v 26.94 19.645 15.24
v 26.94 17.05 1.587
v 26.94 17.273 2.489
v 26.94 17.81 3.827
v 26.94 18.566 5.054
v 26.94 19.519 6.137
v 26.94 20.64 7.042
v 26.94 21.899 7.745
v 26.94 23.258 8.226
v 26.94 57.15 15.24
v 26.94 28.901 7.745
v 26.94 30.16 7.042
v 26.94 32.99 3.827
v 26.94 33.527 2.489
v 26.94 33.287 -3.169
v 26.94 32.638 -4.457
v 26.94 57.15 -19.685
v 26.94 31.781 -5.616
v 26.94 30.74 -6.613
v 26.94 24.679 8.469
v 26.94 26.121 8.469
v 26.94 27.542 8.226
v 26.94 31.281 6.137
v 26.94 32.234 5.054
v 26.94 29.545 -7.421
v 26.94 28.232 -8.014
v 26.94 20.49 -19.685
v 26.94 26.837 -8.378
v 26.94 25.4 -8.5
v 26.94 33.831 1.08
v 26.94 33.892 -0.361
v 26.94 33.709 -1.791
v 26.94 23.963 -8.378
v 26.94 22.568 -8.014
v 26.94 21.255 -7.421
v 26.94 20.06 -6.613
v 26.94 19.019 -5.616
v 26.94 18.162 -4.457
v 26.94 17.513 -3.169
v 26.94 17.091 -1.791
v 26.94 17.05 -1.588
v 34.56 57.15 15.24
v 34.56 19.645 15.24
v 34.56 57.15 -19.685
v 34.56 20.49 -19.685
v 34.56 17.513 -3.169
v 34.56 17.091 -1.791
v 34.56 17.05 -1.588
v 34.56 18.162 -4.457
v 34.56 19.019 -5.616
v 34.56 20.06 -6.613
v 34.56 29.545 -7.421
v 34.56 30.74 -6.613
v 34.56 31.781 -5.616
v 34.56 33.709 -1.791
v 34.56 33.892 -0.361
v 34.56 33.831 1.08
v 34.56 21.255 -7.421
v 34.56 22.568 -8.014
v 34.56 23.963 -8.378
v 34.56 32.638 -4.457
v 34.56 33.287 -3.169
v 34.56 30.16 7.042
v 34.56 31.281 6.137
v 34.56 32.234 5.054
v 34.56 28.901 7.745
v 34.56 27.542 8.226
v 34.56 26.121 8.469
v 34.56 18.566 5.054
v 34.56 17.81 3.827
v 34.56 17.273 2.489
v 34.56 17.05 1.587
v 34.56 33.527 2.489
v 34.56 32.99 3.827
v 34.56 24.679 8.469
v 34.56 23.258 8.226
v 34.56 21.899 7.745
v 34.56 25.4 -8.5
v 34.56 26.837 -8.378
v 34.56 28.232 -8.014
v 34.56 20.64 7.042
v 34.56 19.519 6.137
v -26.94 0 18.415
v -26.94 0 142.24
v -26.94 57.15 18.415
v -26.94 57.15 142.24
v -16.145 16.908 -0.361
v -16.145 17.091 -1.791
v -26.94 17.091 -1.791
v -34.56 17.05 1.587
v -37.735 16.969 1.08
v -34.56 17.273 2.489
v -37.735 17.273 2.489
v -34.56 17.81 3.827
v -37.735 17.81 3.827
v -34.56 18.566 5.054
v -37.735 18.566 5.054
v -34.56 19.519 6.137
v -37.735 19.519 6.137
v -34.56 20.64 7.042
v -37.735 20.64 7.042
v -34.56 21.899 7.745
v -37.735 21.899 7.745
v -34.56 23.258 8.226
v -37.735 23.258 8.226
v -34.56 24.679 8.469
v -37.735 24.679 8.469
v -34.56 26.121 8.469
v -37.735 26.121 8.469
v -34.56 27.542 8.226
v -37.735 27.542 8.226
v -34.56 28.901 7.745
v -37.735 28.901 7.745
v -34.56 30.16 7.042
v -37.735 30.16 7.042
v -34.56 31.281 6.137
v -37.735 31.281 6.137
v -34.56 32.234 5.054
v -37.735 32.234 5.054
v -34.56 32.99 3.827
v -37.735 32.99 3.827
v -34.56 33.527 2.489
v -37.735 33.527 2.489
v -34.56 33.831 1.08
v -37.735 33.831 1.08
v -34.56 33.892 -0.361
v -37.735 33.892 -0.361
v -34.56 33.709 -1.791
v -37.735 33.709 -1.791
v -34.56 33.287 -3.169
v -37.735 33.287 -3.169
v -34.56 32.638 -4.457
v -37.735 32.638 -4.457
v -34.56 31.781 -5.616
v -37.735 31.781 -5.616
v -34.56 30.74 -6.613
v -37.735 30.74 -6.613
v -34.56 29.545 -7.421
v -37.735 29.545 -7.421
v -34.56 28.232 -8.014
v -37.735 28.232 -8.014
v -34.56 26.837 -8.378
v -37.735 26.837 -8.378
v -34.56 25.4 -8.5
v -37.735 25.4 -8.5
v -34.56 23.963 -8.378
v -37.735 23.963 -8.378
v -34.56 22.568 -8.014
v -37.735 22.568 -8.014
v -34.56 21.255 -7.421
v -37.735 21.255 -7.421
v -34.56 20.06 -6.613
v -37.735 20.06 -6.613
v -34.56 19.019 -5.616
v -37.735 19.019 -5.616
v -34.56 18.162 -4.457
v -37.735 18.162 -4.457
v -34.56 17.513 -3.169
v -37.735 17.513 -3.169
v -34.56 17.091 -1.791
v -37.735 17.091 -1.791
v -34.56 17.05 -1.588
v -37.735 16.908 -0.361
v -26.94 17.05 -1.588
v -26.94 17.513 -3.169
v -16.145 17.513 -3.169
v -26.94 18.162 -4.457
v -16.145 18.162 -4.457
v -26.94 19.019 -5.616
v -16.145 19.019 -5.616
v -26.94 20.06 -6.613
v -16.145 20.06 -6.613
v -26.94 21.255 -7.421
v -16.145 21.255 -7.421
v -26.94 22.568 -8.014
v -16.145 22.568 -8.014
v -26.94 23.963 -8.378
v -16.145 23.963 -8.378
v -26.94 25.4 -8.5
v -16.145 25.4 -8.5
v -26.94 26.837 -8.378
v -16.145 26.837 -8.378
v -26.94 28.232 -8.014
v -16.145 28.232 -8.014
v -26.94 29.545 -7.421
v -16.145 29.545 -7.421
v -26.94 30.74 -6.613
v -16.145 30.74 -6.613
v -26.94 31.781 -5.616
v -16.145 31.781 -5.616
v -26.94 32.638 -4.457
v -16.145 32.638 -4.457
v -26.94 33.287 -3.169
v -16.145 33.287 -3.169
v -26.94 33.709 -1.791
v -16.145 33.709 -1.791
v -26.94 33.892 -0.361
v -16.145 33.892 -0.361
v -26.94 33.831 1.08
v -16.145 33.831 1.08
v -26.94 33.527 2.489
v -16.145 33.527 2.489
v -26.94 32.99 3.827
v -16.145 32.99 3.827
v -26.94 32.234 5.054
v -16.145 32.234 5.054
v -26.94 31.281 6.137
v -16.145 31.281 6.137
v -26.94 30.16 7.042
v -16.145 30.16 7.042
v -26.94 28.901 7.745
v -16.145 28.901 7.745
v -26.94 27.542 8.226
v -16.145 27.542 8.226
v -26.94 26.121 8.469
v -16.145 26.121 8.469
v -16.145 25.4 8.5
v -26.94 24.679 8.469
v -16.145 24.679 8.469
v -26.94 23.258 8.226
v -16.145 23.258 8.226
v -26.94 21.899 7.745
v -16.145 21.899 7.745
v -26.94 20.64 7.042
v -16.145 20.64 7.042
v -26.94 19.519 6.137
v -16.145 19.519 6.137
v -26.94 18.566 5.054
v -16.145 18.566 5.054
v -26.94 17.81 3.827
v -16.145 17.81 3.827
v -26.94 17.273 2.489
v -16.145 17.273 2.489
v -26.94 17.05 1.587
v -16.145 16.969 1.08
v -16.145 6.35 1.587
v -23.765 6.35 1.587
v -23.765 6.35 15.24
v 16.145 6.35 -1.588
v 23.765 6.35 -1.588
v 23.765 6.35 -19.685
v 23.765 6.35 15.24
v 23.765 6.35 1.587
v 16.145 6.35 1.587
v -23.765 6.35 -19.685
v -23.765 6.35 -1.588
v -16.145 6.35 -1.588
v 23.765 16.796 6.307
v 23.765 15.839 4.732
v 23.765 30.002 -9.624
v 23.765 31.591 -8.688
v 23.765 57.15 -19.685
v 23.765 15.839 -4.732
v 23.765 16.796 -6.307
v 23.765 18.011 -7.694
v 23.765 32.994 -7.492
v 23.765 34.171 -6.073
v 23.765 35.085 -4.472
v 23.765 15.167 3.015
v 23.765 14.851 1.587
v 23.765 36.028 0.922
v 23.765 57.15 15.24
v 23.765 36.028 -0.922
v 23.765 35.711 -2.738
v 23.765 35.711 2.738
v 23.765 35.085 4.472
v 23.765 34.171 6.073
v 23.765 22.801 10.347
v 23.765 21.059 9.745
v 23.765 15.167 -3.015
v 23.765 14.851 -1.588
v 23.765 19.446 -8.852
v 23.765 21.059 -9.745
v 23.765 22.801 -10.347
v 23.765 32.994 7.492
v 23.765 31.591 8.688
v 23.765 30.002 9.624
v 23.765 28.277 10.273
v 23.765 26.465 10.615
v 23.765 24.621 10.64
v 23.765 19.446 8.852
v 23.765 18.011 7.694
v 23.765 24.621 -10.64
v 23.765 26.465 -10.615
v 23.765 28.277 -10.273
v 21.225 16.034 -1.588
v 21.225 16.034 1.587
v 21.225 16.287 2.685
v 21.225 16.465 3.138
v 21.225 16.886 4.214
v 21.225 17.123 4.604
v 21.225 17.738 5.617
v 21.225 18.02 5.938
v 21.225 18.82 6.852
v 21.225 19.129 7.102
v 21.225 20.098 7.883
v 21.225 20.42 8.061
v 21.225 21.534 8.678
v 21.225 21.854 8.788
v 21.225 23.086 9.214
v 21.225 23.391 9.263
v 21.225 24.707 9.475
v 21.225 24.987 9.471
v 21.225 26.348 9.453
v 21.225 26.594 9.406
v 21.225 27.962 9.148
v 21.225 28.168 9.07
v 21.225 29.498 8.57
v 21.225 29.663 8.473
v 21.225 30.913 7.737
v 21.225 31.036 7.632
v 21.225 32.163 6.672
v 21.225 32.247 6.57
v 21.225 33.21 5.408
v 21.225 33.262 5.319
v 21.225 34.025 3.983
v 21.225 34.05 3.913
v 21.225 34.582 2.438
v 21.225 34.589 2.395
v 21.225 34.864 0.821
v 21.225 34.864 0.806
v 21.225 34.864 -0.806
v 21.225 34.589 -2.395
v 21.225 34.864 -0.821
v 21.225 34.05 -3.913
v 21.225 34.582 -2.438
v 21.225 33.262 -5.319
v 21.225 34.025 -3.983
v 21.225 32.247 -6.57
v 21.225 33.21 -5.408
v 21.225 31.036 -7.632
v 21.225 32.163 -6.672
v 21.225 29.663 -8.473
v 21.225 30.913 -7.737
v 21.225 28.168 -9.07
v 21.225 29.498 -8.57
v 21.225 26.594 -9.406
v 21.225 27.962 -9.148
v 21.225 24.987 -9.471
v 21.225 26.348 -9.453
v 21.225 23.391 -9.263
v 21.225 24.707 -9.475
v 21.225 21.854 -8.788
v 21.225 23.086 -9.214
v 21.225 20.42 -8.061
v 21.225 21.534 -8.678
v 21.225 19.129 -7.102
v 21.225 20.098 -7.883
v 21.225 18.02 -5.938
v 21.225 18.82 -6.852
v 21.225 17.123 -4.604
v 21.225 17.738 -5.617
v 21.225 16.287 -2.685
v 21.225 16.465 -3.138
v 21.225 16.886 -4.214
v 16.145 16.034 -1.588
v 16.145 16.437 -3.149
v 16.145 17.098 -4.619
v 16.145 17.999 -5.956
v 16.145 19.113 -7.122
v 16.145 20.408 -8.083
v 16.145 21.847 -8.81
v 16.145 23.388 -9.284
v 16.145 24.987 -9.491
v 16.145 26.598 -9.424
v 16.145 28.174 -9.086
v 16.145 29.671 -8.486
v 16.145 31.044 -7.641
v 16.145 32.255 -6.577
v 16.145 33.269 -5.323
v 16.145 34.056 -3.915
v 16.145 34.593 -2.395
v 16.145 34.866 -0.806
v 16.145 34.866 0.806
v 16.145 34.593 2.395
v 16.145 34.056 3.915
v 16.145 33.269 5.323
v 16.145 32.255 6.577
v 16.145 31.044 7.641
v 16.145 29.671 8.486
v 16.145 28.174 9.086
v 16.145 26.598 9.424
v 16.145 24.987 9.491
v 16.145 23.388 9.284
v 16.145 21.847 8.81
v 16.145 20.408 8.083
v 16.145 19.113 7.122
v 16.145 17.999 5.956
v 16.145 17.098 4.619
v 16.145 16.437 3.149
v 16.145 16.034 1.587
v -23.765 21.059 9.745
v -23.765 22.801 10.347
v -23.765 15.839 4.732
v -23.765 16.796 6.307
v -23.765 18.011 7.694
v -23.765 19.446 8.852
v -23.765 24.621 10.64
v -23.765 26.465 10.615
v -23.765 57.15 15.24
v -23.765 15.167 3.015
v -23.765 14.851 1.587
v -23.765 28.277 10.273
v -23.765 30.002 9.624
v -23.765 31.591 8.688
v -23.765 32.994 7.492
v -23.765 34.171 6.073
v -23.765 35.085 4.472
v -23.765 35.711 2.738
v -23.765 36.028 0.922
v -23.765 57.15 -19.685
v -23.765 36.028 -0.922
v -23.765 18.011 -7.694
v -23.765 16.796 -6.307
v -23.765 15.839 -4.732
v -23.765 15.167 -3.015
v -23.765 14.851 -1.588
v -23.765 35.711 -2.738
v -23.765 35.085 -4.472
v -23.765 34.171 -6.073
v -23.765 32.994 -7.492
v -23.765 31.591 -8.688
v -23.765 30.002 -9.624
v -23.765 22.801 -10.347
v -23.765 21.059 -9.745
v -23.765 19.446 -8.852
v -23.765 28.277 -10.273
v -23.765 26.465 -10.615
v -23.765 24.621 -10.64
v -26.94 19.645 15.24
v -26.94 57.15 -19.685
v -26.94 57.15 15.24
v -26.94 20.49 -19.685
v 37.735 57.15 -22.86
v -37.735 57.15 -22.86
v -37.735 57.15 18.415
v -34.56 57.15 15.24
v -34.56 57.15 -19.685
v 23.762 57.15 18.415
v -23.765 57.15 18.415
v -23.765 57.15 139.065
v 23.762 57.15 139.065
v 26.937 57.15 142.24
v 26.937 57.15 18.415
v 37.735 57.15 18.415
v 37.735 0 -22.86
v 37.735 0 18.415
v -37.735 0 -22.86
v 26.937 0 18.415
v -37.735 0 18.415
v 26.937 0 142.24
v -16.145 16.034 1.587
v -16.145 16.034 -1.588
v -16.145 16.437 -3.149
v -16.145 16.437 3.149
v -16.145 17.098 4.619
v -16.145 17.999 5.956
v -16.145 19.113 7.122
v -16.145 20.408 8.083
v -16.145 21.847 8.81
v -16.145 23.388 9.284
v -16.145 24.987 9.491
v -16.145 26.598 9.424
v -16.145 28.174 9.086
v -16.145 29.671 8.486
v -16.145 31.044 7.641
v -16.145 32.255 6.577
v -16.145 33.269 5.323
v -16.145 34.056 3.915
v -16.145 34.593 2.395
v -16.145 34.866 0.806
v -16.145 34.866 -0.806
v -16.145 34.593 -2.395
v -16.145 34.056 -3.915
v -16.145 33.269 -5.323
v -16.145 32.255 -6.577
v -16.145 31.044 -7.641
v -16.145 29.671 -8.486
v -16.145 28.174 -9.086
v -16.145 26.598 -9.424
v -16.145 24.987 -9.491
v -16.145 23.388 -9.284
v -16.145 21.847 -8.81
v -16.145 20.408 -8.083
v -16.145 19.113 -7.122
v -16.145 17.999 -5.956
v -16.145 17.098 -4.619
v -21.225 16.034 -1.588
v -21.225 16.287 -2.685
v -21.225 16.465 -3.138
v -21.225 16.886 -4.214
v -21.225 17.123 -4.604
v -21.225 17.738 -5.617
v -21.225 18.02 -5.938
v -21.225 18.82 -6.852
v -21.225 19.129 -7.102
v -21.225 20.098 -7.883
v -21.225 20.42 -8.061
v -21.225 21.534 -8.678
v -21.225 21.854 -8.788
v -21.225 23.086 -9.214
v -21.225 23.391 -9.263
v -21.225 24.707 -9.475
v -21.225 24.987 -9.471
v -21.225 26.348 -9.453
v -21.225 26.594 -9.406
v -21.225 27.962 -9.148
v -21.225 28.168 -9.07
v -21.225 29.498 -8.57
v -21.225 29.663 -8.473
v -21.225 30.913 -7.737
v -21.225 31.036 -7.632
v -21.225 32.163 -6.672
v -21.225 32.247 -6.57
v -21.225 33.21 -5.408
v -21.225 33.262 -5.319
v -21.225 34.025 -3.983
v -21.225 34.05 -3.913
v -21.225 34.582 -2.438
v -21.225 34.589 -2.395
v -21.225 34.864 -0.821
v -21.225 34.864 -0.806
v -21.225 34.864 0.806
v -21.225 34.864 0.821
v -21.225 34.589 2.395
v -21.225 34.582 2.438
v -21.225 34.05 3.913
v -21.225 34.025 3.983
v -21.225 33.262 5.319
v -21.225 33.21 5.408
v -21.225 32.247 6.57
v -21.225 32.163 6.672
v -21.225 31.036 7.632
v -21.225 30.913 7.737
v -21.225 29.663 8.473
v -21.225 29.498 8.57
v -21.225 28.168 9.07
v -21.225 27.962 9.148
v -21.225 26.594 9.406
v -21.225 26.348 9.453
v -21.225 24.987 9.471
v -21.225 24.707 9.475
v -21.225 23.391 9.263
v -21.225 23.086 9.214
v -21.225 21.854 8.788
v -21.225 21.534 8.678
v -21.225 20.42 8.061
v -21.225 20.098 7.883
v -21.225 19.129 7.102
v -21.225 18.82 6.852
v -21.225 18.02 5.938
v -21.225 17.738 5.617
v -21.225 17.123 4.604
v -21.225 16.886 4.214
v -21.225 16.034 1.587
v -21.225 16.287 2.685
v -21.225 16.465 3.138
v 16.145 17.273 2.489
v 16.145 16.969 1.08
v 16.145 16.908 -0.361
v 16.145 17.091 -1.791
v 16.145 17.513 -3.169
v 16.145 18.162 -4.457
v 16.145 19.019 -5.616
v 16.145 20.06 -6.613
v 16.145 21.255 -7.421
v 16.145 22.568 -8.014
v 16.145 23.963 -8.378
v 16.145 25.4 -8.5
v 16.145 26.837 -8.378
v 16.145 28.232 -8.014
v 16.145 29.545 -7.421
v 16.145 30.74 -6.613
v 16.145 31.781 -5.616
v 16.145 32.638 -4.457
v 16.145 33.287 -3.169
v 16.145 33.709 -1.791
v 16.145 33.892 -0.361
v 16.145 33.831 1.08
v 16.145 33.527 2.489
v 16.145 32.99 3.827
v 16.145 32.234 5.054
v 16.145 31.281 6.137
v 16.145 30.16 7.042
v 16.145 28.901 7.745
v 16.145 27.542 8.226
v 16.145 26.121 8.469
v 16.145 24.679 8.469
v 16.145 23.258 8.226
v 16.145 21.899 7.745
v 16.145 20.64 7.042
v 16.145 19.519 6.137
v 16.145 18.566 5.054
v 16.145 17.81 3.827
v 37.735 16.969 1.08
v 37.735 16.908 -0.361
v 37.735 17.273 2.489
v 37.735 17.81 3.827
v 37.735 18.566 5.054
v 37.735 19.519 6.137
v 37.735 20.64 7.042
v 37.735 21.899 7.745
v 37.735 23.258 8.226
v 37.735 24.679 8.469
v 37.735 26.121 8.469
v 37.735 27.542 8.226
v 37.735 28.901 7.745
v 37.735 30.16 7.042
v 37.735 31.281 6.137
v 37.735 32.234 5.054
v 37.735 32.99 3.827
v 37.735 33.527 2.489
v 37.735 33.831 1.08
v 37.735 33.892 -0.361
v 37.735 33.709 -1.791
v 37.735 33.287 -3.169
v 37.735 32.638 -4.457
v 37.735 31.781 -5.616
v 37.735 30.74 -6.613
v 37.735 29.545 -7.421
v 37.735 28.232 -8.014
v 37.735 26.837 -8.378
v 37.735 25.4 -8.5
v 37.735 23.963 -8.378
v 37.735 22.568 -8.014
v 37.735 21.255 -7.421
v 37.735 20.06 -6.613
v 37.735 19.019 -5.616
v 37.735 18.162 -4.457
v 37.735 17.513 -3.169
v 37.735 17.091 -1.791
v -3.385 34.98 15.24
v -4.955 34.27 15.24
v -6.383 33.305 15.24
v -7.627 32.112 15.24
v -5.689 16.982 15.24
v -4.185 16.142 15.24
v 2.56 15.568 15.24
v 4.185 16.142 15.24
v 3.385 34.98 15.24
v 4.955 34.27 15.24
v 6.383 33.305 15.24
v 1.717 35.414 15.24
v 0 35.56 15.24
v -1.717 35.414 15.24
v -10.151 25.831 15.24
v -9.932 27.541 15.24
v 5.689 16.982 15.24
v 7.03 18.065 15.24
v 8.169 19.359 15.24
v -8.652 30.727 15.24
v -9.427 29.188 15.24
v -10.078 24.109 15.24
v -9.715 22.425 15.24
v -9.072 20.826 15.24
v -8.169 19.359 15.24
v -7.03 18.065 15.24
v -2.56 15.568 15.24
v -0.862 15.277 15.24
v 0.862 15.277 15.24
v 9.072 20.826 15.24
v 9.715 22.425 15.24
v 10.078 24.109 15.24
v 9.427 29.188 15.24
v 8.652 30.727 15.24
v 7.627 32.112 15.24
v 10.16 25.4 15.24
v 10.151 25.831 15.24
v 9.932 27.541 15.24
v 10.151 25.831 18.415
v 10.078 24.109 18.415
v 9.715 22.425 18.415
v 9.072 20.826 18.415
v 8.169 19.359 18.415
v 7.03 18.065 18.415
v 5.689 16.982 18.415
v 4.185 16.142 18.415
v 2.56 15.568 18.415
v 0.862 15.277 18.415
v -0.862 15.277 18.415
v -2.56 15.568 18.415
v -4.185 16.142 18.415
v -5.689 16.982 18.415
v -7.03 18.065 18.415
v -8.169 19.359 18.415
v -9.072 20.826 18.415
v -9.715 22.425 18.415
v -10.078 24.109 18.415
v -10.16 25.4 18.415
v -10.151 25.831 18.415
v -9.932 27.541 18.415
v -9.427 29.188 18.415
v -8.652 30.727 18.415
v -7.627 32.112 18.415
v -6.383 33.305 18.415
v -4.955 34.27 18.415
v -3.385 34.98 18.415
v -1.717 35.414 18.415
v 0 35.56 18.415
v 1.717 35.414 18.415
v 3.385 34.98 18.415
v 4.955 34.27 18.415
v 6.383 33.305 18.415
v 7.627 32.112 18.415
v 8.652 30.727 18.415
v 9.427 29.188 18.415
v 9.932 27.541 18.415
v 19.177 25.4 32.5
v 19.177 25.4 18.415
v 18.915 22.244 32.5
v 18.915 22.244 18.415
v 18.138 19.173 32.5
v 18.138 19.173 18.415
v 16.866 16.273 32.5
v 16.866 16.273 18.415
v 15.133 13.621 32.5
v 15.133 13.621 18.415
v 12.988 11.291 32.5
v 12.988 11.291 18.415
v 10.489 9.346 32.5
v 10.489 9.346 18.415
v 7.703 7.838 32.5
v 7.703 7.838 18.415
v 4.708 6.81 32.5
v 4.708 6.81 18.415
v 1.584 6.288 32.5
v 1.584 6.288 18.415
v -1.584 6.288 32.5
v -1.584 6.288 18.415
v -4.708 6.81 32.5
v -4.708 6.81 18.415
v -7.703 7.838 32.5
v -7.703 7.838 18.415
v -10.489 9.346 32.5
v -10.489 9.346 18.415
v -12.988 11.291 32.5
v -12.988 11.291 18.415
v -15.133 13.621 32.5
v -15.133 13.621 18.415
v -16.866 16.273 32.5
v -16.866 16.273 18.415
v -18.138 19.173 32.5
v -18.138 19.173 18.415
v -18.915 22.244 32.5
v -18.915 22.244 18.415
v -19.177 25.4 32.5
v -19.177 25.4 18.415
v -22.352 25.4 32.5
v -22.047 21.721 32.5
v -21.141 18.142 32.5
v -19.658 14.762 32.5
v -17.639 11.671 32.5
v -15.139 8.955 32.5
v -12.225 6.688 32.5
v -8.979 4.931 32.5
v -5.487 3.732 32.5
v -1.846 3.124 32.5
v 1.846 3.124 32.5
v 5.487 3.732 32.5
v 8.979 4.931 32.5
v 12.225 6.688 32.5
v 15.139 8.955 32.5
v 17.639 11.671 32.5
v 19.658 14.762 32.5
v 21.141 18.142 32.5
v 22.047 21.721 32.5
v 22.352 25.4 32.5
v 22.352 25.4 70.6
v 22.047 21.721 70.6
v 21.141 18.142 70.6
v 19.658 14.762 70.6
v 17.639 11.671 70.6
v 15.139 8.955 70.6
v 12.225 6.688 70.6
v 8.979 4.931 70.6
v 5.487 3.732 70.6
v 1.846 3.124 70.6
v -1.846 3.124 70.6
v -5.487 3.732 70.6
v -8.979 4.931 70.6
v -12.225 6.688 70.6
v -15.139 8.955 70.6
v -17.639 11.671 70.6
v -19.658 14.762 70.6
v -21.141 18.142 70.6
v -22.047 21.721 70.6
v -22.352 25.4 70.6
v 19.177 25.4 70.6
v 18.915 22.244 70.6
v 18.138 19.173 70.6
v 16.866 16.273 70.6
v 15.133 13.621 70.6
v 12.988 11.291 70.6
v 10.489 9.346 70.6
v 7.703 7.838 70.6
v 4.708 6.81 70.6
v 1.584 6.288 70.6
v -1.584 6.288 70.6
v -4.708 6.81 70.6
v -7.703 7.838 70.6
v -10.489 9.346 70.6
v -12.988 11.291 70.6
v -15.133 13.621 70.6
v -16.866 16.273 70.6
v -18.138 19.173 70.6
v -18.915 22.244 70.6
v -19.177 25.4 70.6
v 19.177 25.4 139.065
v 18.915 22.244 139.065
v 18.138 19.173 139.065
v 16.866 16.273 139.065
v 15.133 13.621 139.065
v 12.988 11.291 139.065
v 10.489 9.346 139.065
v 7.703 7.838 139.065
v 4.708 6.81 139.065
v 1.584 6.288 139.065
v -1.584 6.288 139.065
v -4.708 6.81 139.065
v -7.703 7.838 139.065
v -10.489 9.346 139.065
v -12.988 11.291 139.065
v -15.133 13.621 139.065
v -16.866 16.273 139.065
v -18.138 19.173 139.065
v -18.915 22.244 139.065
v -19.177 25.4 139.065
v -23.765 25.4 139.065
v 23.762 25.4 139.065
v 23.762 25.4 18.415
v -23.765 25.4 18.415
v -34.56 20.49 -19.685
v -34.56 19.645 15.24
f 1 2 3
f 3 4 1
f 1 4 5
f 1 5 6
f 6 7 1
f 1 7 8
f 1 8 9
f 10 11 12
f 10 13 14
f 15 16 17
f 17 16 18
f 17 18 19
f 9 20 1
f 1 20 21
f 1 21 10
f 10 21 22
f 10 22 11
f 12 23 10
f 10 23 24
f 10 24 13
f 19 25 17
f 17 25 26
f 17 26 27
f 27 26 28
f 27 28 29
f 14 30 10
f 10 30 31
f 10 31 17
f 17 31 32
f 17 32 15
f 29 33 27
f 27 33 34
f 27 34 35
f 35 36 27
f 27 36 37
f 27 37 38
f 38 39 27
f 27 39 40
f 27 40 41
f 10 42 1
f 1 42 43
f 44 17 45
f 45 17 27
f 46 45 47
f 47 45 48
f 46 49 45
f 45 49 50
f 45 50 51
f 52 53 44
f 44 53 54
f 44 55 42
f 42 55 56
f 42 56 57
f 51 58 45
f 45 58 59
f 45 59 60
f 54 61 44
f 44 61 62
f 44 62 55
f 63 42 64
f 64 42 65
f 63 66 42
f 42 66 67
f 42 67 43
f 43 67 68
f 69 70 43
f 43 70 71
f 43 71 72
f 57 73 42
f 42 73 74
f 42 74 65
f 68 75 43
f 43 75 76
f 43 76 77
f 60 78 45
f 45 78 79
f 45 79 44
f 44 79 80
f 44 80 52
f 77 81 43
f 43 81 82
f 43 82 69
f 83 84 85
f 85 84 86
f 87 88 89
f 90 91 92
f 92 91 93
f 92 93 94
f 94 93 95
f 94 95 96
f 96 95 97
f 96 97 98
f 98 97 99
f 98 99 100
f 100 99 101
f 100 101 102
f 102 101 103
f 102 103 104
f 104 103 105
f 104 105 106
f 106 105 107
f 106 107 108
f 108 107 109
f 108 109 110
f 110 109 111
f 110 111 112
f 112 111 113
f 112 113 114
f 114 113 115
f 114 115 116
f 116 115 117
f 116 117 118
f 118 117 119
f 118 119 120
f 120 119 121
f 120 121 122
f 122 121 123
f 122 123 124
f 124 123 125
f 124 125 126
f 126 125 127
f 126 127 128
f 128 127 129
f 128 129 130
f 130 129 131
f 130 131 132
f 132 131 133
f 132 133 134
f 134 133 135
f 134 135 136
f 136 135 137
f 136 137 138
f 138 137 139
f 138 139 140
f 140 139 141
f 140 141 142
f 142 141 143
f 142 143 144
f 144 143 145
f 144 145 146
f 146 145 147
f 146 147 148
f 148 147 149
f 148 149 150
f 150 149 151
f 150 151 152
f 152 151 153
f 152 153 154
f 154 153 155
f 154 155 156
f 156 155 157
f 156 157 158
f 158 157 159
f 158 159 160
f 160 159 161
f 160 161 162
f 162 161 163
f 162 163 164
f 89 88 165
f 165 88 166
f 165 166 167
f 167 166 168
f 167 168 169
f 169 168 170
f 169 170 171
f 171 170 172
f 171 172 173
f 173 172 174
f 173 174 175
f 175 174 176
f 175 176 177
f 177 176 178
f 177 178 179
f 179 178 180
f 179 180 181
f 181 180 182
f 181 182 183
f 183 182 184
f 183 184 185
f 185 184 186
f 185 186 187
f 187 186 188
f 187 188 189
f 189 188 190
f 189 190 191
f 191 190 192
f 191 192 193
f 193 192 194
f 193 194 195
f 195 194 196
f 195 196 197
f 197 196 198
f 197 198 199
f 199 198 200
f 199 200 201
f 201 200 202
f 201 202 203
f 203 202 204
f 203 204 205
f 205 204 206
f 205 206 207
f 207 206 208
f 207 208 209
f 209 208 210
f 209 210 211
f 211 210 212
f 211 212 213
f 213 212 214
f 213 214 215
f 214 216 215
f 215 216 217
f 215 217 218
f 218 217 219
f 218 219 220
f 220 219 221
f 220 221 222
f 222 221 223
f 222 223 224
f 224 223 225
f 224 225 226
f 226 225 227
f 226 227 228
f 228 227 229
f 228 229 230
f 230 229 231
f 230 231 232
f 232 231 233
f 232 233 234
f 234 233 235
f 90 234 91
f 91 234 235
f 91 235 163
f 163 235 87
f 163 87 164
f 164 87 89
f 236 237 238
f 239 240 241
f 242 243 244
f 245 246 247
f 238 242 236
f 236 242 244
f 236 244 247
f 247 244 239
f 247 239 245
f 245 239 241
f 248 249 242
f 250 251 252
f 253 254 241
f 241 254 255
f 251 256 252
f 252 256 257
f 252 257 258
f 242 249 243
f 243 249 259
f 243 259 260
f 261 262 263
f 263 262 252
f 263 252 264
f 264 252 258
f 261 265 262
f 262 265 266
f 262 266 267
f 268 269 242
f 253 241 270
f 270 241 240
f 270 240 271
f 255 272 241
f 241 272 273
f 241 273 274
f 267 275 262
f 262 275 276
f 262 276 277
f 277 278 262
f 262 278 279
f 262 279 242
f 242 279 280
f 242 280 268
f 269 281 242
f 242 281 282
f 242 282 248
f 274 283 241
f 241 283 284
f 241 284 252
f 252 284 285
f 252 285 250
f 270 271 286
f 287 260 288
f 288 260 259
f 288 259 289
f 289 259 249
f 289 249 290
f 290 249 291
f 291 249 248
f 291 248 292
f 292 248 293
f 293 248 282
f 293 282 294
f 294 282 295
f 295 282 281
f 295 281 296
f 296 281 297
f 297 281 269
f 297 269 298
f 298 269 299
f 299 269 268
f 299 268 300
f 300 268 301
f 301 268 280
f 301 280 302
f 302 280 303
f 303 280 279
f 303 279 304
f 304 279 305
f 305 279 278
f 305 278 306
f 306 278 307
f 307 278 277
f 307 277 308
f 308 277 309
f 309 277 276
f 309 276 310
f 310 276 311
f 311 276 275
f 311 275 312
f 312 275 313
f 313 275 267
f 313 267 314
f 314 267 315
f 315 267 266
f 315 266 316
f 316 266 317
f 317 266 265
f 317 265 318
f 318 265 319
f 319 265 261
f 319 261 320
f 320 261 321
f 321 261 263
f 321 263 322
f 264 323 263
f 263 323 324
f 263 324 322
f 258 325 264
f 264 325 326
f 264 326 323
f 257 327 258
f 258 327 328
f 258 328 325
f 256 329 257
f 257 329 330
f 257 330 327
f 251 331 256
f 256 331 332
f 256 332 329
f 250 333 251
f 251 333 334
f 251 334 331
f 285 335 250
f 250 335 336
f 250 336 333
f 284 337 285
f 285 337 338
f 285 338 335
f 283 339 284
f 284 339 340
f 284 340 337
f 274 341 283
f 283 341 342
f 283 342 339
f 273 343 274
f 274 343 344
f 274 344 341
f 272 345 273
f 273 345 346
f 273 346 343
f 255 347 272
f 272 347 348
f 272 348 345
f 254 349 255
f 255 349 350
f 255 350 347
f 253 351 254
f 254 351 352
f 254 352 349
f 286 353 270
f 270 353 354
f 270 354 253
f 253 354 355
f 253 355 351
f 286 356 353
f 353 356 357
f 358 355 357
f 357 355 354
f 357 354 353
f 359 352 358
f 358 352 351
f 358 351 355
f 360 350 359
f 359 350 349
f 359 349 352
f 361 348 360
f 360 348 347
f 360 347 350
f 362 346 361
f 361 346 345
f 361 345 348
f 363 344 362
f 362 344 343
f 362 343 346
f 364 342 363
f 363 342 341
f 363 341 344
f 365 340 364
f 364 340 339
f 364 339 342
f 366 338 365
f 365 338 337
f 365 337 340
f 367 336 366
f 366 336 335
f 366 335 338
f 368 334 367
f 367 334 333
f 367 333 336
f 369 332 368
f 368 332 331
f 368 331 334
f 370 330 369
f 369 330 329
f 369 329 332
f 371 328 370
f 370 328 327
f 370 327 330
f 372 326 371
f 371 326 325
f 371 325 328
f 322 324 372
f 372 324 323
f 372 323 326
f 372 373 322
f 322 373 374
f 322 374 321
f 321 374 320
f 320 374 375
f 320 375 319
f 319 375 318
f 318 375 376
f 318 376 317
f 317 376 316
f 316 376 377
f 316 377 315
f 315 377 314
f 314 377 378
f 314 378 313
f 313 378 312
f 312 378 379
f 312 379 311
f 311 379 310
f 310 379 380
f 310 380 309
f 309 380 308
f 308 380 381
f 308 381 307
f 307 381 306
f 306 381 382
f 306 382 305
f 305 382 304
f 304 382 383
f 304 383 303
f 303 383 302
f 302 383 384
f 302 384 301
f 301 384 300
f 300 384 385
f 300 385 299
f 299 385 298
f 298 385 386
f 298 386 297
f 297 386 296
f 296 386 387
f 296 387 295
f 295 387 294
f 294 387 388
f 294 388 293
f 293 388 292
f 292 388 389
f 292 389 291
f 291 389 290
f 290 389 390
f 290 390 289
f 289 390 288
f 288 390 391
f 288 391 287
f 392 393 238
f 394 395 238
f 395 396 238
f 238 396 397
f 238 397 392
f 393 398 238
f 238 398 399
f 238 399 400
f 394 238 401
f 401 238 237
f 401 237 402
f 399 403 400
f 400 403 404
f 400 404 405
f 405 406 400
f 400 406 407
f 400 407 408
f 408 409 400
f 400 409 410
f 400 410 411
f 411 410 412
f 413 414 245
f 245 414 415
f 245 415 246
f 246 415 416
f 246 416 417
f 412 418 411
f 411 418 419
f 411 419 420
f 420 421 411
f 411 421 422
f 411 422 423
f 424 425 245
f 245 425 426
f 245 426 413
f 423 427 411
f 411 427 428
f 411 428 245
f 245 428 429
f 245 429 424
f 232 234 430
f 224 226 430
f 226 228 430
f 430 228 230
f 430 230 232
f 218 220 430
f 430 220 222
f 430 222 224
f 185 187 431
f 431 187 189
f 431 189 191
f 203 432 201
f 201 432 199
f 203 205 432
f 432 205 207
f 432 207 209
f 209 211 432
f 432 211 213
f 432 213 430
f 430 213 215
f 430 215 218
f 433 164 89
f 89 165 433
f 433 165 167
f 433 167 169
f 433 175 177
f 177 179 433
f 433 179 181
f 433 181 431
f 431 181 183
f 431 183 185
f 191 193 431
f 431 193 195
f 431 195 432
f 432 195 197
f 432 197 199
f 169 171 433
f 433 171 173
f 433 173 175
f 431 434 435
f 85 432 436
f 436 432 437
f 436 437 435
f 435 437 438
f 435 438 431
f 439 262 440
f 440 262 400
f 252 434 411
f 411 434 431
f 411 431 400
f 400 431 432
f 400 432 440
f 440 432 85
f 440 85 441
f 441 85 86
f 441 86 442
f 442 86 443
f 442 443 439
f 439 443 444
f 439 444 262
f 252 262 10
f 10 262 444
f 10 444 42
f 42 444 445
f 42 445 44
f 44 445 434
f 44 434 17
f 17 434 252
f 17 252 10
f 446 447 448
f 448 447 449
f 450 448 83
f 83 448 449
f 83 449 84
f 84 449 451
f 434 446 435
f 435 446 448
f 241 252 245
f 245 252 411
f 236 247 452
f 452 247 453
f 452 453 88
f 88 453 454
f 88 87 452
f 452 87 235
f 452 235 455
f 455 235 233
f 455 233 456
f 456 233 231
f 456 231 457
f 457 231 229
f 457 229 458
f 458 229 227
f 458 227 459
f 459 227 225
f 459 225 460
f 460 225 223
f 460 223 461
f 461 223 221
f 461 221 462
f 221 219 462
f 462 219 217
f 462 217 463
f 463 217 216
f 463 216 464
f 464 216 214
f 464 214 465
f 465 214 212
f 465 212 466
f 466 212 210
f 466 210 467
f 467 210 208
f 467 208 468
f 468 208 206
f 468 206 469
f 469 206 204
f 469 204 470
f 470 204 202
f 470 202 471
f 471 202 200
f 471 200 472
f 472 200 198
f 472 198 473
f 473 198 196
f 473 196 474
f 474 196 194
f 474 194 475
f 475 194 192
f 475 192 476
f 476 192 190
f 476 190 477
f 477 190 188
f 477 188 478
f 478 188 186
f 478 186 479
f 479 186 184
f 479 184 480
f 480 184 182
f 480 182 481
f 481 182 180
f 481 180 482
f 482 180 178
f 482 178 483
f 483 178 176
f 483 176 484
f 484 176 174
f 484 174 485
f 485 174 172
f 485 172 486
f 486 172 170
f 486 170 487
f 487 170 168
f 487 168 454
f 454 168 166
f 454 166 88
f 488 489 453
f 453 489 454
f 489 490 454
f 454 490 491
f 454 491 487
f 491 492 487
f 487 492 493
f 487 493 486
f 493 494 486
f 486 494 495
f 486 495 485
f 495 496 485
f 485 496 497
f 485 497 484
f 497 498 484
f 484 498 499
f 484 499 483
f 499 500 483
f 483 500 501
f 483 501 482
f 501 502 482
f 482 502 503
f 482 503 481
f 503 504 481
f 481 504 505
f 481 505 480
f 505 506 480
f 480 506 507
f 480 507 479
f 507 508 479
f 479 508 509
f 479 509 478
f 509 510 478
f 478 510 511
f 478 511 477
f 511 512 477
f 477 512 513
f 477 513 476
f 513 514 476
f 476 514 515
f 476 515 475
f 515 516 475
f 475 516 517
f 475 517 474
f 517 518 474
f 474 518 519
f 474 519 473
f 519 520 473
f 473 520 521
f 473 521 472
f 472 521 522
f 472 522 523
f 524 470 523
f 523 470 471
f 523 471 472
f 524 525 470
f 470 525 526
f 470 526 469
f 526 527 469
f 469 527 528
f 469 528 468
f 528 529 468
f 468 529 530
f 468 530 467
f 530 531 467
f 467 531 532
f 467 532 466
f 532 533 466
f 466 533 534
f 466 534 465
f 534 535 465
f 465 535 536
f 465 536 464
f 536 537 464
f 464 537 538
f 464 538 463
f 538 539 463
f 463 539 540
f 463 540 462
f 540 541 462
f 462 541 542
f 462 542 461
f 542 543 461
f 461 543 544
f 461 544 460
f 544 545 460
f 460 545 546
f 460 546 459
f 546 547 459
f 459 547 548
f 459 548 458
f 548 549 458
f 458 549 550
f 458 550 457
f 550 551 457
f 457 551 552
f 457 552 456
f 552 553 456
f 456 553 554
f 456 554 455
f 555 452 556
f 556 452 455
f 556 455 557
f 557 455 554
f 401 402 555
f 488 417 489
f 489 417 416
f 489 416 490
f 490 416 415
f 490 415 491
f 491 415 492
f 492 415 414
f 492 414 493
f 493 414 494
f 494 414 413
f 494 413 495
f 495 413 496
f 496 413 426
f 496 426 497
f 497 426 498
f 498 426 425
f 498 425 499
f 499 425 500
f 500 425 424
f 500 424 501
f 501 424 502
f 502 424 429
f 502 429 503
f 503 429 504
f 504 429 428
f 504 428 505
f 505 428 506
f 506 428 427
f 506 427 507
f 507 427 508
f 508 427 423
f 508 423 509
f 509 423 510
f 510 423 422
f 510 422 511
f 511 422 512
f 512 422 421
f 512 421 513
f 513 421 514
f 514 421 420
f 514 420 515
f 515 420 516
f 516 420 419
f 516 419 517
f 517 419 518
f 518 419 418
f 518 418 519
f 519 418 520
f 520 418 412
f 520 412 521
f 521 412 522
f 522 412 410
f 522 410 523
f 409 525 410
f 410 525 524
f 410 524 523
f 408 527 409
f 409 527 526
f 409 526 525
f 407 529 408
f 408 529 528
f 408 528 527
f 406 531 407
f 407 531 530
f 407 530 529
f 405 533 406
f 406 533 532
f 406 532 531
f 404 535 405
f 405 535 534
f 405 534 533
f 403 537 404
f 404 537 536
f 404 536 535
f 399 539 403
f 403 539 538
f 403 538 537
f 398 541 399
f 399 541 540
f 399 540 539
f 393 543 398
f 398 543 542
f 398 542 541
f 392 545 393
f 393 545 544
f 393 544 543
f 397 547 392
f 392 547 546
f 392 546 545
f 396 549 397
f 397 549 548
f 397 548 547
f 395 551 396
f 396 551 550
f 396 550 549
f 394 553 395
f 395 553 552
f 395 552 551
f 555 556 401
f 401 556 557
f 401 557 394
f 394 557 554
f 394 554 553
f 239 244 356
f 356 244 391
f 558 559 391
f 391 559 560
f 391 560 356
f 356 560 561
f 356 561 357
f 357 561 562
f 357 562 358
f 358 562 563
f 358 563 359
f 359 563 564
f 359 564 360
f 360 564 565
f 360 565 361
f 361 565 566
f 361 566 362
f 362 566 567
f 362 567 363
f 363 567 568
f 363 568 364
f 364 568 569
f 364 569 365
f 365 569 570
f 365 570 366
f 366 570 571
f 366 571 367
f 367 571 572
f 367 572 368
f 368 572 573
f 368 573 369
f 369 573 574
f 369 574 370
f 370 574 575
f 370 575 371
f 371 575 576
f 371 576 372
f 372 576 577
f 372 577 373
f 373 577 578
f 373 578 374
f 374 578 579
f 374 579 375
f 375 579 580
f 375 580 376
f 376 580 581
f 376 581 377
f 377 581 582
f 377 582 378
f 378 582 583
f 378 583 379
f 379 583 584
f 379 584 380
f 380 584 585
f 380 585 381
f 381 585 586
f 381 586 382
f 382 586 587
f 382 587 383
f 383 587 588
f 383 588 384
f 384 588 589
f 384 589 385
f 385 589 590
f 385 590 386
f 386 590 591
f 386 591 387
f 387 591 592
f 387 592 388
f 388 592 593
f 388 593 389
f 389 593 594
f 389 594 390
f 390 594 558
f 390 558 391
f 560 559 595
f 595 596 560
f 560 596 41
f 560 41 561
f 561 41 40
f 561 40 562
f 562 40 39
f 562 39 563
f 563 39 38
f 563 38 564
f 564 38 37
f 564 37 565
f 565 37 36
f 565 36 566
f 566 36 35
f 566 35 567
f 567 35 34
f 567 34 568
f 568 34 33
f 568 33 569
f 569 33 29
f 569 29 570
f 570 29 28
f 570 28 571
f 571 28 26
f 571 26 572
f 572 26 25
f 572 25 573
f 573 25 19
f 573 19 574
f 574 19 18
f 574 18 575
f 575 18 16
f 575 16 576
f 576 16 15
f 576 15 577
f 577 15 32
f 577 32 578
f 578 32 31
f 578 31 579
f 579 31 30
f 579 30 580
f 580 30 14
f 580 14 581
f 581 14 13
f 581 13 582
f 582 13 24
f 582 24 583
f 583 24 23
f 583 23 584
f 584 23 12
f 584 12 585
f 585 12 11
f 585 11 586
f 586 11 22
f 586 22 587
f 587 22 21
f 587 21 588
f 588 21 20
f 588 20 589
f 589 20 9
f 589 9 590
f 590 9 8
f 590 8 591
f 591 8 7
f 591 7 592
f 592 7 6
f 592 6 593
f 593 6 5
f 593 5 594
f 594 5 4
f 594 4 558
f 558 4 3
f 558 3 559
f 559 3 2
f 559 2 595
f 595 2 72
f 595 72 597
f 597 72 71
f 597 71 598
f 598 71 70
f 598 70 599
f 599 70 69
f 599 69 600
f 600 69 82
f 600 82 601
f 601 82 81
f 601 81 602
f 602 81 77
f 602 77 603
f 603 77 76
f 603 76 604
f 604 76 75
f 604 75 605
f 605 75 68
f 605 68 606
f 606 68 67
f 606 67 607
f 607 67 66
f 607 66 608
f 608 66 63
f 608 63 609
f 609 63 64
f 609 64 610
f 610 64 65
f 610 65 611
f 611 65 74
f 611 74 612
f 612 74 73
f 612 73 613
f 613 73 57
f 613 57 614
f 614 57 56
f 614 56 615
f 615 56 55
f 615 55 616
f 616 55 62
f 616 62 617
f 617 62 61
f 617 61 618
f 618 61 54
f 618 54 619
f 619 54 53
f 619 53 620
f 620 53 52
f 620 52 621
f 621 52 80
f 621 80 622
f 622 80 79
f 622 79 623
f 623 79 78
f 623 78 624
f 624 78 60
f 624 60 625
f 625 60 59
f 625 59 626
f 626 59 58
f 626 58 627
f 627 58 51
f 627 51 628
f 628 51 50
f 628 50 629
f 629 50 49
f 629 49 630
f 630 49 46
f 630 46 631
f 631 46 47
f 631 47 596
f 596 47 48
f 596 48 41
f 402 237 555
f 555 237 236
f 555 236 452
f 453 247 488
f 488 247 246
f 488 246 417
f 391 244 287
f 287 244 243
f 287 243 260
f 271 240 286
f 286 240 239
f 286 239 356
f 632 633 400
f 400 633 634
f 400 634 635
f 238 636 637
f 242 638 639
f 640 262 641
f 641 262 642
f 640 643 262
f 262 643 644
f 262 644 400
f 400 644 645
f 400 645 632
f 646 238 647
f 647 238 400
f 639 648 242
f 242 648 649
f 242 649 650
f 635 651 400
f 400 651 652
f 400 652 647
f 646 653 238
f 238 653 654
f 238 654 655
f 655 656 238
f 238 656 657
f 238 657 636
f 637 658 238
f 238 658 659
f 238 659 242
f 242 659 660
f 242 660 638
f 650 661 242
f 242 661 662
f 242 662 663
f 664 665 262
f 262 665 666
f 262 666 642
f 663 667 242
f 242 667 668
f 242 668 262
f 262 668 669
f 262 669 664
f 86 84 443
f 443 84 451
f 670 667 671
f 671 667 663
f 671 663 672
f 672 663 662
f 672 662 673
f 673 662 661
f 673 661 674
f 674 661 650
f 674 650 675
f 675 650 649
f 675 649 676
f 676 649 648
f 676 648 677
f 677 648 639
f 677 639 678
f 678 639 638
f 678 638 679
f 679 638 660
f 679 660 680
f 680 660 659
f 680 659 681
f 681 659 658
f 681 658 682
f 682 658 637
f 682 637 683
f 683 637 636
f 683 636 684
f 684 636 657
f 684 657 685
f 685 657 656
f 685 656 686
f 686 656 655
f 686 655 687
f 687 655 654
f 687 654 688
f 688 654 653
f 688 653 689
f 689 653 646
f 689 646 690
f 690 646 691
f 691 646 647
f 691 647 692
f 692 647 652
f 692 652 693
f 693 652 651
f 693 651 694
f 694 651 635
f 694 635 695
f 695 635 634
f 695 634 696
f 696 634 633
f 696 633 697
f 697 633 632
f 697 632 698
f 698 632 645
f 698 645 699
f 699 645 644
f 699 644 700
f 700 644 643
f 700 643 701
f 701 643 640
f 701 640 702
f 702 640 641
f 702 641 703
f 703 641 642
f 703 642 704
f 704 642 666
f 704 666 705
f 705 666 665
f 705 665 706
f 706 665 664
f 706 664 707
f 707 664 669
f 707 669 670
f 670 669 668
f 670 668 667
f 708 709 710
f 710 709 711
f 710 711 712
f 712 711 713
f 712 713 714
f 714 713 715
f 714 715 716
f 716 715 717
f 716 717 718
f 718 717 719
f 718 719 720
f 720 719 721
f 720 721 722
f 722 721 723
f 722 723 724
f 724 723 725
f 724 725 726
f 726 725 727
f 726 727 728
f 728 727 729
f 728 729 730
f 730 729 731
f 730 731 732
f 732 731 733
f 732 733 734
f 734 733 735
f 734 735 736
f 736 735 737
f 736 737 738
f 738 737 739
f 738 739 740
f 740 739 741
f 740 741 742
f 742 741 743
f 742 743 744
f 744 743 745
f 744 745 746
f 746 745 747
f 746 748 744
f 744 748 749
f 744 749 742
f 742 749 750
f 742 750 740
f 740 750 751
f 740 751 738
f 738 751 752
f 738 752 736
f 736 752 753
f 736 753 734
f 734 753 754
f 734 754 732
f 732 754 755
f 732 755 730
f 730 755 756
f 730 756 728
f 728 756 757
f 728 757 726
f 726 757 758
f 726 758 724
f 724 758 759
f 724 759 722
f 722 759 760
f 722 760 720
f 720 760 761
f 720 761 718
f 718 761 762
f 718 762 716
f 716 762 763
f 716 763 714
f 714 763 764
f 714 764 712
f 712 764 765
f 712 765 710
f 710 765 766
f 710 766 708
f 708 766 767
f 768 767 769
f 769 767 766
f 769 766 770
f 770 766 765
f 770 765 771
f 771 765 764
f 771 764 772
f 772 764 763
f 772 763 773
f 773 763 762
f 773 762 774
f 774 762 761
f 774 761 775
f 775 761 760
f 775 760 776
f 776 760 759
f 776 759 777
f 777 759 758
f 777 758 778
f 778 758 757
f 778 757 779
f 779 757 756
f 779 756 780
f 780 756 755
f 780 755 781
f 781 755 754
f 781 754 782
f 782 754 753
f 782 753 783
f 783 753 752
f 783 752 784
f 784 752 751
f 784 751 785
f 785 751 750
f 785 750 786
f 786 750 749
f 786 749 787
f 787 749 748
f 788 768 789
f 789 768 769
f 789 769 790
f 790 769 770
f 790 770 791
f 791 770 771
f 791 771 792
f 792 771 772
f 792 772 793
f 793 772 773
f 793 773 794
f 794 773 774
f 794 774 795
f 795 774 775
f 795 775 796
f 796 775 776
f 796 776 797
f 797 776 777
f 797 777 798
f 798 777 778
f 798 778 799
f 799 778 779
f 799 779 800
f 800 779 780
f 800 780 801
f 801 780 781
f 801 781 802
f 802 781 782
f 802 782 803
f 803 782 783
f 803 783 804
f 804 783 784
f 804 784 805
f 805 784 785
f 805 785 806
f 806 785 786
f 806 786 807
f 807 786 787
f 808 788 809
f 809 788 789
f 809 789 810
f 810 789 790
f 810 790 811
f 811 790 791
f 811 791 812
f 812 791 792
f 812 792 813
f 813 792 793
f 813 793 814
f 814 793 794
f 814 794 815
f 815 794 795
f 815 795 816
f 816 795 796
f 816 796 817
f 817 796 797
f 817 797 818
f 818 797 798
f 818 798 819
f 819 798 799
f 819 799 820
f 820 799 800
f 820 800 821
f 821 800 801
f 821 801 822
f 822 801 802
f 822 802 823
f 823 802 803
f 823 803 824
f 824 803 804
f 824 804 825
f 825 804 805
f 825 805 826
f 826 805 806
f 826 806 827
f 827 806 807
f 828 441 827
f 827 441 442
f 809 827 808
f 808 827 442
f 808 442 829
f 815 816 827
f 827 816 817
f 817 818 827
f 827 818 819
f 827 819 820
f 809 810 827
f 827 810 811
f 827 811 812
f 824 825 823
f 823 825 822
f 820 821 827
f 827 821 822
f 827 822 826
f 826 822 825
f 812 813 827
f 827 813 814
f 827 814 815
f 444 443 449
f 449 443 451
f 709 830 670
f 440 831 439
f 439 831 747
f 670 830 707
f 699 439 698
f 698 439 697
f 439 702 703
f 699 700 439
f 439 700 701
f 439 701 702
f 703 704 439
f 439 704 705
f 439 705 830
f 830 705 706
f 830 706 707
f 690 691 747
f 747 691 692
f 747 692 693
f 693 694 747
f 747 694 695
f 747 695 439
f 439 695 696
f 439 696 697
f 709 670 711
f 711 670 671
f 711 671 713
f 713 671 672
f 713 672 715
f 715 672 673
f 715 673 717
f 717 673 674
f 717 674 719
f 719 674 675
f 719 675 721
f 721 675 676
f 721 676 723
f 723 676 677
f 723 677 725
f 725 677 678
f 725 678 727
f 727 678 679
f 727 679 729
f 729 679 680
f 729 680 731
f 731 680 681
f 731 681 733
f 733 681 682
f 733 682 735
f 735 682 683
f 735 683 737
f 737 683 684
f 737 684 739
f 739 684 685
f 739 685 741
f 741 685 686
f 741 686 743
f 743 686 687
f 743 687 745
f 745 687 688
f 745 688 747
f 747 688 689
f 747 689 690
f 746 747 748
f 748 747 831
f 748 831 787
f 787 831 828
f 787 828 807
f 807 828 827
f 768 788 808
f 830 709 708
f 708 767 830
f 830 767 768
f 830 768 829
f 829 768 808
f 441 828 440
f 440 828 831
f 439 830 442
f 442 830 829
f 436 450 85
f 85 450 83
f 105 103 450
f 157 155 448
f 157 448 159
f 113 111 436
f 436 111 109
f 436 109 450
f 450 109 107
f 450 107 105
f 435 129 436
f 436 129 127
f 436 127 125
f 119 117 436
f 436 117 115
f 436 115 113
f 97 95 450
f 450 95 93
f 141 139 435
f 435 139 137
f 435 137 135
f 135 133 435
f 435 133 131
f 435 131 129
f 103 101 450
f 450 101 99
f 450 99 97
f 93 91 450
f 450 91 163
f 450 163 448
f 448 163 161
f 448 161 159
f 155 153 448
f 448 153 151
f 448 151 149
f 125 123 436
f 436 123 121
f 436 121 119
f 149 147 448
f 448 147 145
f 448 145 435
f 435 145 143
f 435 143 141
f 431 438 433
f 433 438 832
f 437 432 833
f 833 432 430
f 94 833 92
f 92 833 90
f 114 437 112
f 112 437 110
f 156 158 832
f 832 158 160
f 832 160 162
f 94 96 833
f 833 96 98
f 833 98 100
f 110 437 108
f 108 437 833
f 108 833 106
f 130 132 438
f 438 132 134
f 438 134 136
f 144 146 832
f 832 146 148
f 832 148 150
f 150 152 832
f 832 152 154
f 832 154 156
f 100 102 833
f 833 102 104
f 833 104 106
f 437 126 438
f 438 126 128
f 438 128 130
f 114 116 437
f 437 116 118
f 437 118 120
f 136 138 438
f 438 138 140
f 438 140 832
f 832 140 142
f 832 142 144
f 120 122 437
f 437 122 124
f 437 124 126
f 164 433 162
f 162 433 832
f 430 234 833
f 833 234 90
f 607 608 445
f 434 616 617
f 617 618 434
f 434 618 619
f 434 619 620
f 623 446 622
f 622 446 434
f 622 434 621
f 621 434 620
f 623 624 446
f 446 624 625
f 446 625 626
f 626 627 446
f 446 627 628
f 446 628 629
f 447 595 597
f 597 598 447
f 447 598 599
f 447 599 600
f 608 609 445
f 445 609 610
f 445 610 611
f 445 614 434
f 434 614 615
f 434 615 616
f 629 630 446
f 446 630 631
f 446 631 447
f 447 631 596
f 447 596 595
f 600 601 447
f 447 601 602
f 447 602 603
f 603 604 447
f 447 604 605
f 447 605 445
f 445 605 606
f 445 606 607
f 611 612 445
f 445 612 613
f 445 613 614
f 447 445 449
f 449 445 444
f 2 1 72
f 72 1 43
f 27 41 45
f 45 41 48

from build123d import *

# Parameters (mm, degrees)
BOSS_EXTRUDE1_START      = 15.24
BOSS_EXTRUDE1_DEPTH      = 38.1
SKETCH2_W                = 53.879496
SKETCH2_H                = 57.15
BOSS_EXTRUDE2_DEPTH      = 3.175
CUT_EXTRUDE2_DEPTH       = 68.189672735
CUT_EXTRUDE2_DEPTH_BACK  = 68.189672735
SKETCH3_R                = 8.5
SKETCH7_W                = 7.62
SKETCH7_H                = 9.935154996
BOSS_EXTRUDE7_DEPTH      = 1.5875
SKETCH8_W                = 53.879496
SKETCH8_H                = 57.15
BOSS_EXTRUDE8_DEPTH      = 127
CUT_EXTRUDE7_DEPTH       = 156.640901187
CUT_EXTRUDE7_DEPTH_BACK  = 156.640901187
SKETCH13_W               = 0.002356984
SKETCH13_H               = 126.769061331
CUT_EXTRUDE8_START       = -31.75
SKETCH14_W               = 47.527139016
SKETCH14_H               = 120.65
CUT_EXTRUDE8_DEPTH       = 31.75
CUT_EXTRUDE9_DEPTH       = 1.689066359
SKETCH18_W               = 13.97
SKETCH18_H               = 41.275
SKETCH18_W_2             = 7.62
SKETCH18_H_2             = 34.925
BOSS_EXTRUDE10_DEPTH     = 57.15
BOSS_EXTRUDE11_REACH     = 164.485
CUT_EXTRUDE11_DEPTH      = 166.168181283
CUT_EXTRUDE11_DEPTH_BACK = 166.168181283
SKETCH20_R               = 8.5


with BuildPart() as part:
    # Sketch1 → Boss-Extrude1 (new body)
    with BuildSketch(Plane.XY.offset(BOSS_EXTRUDE1_START)):
        Polygon((-26.939748, 0), (26.939748, 0), (26.939748, 6.35), (26.939748, 57.15), (23.764748, 57.15), (23.764748, 6.35), (-23.764748, 6.35), (-23.764748, 57.15), (-26.939748, 57.15), (-26.939748, 6.35), align=None)
    extrude(amount=-BOSS_EXTRUDE1_DEPTH)

    # Sketch2 → Boss-Extrude2 (add)
    with BuildSketch(Plane.XY.offset(-22.86)):
        with Locations((0, 28.575)):
            Rectangle(SKETCH2_W, SKETCH2_H)
    extrude(amount=BOSS_EXTRUDE2_DEPTH)

    # Sketch6 → Revolve2 (revolve)
    with BuildSketch(Plane.XY, mode=Mode.PRIVATE) as revolve2_sk:
        Polygon((-23.764748, 25.4), (-16.144748, 25.4), (-16.144748, 34.90000005), (-21.224748, 34.90000005), (-23.764748, 36.068), align=None)
        Polygon((23.764748, 36.068), (23.764748, 25.4), (16.144748, 25.4), (16.144748, 34.90000005), (21.224748, 34.90000005), align=None)
    revolve(revolve2_sk.sketch.rotate(Axis((-23.764748, 25.4, 0), (1, 0, 0)), 90), axis=Axis((-23.764748, 25.4, 0), (1, 0, 0)))

    # Sketch3 → Cut-Extrude2 (cut, two sides: drawn at the far end of the back side and taken through both)
    with BuildSketch(Plane(origin=(0, 0, 0), x_dir=(0, 0, -1), z_dir=(1, 0, 0)).offset(-CUT_EXTRUDE2_DEPTH_BACK)):
        with Locations((0, 25.4)):
            Circle(SKETCH3_R)
    extrude(amount=CUT_EXTRUDE2_DEPTH + CUT_EXTRUDE2_DEPTH_BACK, mode=Mode.SUBTRACT)

    # Sketch7 → Boss-Extrude7 (add, symmetric)
    with BuildSketch(Plane.XY):
        with Locations((-19.954748, 11.317577498)):
            Rectangle(SKETCH7_W, SKETCH7_H)
        with Locations((19.954748, 11.317577498)):
            Rectangle(SKETCH7_W, SKETCH7_H)
    extrude(amount=BOSS_EXTRUDE7_DEPTH, both=True)

    # Sketch8 → Boss-Extrude8 (add)
    with BuildSketch(Plane(origin=(0, 0, 15.24), x_dir=(-1, 0, 0), z_dir=(0, 0, -1))):
        with Locations((0, 28.575)):
            Rectangle(SKETCH8_W, SKETCH8_H)
    extrude(amount=-BOSS_EXTRUDE8_DEPTH)

    # Sketch9 → Cut-Revolve1 (revolve, cut)
    with BuildSketch(Plane(origin=(0, 0, 0), x_dir=(0, 0, -1), z_dir=(1, 0, 0))):
        Polygon((-70.6, 47.752), (-70.6, 44.577), (-139.065, 44.577), (-139.065, 25.4), (-70.104, 25.4), (0, 25.4), (0, 35.56), (-20.104066359, 35.56), (-20.104066359, 44.577), (-32.5, 44.577), (-32.5, 47.752), align=None)
    revolve(axis=Axis((0, 25.4, 0), (0, 0, 1)), mode=Mode.SUBTRACT)

    # Sketch13 → Cut-Extrude7 (cut, two sides: drawn at the far end of the back side and taken through both)
    with BuildSketch(Plane(origin=(0, 0, 0), x_dir=(-1, 0, 0), z_dir=(0, -1, 0)).offset(-CUT_EXTRUDE7_DEPTH_BACK)):
        with Locations((26.940926492, -78.855469335)):
            Rectangle(SKETCH13_W, SKETCH13_H)
        with Locations((-26.938569508, -78.855469335)):
            Rectangle(SKETCH13_W, SKETCH13_H)
    extrude(amount=CUT_EXTRUDE7_DEPTH + CUT_EXTRUDE7_DEPTH_BACK, mode=Mode.SUBTRACT)

    # Sketch14 → Cut-Extrude8 (cut)
    with BuildSketch(Plane(origin=(0, 57.15, 0), x_dir=(1, 0, 0), z_dir=(0, 1, 0)).offset(CUT_EXTRUDE8_START)):
        with Locations((-0.001178492, -78.74)):
            Rectangle(SKETCH14_W, SKETCH14_H)
    extrude(amount=CUT_EXTRUDE8_DEPTH, mode=Mode.SUBTRACT)

    # Sketch15 → Cut-Extrude9 (cut)
    with BuildSketch(Plane.XY.offset(20.104066359)):
        with BuildLine():
            Line((-10.16, 25.4), (-19.177, 25.4))
            ThreePointArc((-19.177, 25.4), (0, 6.223), (19.177, 25.4))
            Line((19.177, 25.4), (10.16, 25.4))
            ThreePointArc((10.16, 25.4), (0, 15.24), (-10.16, 25.4))
        make_face()
    extrude(amount=-CUT_EXTRUDE9_DEPTH, mode=Mode.SUBTRACT)

    # Sketch18 → Boss-Extrude10 (add)
    with BuildSketch(Plane(origin=(0, 0, 0), x_dir=(1, 0, 0), z_dir=(0, 1, 0))):
        with Locations((-30.749748, 2.2225)):
            Rectangle(SKETCH18_W, SKETCH18_H)
        with Locations((-30.749748, 2.2225)):
            Rectangle(SKETCH18_W_2, SKETCH18_H_2, mode=Mode.SUBTRACT)
    boss_extrude10 = extrude(amount=BOSS_EXTRUDE10_DEPTH)

    # Sketch19 → Boss-Extrude11 (add, up to next)
    with BuildSketch(Plane(origin=(-26.939748, 0, 0), x_dir=(0, 0, -1), z_dir=(1, 0, 0)), mode=Mode.PRIVATE) as boss_extrude11_sk1:
        with BuildLine():
            Line((1.5875, 17.049560266), (22.225, 20.972950206))
            Line((22.225, 20.972950206), (22.225, 0))
            Line((22.225, 0), (-15.24, 0))
            Line((-15.24, 0), (-15.24, 19.645033611))
            Line((-15.24, 19.645033611), (-1.5875, 17.049560266))
            ThreePointArc((-1.5875, 17.049560266), (0, 16.9), (1.5875, 17.049560266))
        make_face()
    boss_extrude11_tool1 = extrude(boss_extrude11_sk1.sketch, amount=-BOSS_EXTRUDE11_REACH, mode=Mode.PRIVATE) - part.part
    boss_extrude11 = boss_extrude11_tool1.solids().sort_by_distance((-26.939748, 9.331139, -3.822254))[0]
    add(boss_extrude11)

    # Mirror4: Boss-Extrude10, Boss-Extrude11 across plane
    add(boss_extrude10.mirror(Plane(origin=(0, 0, 0), x_dir=(0, 0, 1), z_dir=(1, 0, 0))))
    add(boss_extrude11.mirror(Plane(origin=(0, 0, 0), x_dir=(0, 0, 1), z_dir=(1, 0, 0))))

    # Sketch20 → Cut-Extrude11 (cut, two sides: drawn at the far end of the back side and taken through both)
    with BuildSketch(Plane(origin=(-23.764748, 0, 0), x_dir=(0, 0, -1), z_dir=(1, 0, 0)).offset(-CUT_EXTRUDE11_DEPTH_BACK)):
        with Locations((0, 25.4)):
            Circle(SKETCH20_R)
    extrude(amount=CUT_EXTRUDE11_DEPTH + CUT_EXTRUDE11_DEPTH_BACK, mode=Mode.SUBTRACT)


solid = part.part
